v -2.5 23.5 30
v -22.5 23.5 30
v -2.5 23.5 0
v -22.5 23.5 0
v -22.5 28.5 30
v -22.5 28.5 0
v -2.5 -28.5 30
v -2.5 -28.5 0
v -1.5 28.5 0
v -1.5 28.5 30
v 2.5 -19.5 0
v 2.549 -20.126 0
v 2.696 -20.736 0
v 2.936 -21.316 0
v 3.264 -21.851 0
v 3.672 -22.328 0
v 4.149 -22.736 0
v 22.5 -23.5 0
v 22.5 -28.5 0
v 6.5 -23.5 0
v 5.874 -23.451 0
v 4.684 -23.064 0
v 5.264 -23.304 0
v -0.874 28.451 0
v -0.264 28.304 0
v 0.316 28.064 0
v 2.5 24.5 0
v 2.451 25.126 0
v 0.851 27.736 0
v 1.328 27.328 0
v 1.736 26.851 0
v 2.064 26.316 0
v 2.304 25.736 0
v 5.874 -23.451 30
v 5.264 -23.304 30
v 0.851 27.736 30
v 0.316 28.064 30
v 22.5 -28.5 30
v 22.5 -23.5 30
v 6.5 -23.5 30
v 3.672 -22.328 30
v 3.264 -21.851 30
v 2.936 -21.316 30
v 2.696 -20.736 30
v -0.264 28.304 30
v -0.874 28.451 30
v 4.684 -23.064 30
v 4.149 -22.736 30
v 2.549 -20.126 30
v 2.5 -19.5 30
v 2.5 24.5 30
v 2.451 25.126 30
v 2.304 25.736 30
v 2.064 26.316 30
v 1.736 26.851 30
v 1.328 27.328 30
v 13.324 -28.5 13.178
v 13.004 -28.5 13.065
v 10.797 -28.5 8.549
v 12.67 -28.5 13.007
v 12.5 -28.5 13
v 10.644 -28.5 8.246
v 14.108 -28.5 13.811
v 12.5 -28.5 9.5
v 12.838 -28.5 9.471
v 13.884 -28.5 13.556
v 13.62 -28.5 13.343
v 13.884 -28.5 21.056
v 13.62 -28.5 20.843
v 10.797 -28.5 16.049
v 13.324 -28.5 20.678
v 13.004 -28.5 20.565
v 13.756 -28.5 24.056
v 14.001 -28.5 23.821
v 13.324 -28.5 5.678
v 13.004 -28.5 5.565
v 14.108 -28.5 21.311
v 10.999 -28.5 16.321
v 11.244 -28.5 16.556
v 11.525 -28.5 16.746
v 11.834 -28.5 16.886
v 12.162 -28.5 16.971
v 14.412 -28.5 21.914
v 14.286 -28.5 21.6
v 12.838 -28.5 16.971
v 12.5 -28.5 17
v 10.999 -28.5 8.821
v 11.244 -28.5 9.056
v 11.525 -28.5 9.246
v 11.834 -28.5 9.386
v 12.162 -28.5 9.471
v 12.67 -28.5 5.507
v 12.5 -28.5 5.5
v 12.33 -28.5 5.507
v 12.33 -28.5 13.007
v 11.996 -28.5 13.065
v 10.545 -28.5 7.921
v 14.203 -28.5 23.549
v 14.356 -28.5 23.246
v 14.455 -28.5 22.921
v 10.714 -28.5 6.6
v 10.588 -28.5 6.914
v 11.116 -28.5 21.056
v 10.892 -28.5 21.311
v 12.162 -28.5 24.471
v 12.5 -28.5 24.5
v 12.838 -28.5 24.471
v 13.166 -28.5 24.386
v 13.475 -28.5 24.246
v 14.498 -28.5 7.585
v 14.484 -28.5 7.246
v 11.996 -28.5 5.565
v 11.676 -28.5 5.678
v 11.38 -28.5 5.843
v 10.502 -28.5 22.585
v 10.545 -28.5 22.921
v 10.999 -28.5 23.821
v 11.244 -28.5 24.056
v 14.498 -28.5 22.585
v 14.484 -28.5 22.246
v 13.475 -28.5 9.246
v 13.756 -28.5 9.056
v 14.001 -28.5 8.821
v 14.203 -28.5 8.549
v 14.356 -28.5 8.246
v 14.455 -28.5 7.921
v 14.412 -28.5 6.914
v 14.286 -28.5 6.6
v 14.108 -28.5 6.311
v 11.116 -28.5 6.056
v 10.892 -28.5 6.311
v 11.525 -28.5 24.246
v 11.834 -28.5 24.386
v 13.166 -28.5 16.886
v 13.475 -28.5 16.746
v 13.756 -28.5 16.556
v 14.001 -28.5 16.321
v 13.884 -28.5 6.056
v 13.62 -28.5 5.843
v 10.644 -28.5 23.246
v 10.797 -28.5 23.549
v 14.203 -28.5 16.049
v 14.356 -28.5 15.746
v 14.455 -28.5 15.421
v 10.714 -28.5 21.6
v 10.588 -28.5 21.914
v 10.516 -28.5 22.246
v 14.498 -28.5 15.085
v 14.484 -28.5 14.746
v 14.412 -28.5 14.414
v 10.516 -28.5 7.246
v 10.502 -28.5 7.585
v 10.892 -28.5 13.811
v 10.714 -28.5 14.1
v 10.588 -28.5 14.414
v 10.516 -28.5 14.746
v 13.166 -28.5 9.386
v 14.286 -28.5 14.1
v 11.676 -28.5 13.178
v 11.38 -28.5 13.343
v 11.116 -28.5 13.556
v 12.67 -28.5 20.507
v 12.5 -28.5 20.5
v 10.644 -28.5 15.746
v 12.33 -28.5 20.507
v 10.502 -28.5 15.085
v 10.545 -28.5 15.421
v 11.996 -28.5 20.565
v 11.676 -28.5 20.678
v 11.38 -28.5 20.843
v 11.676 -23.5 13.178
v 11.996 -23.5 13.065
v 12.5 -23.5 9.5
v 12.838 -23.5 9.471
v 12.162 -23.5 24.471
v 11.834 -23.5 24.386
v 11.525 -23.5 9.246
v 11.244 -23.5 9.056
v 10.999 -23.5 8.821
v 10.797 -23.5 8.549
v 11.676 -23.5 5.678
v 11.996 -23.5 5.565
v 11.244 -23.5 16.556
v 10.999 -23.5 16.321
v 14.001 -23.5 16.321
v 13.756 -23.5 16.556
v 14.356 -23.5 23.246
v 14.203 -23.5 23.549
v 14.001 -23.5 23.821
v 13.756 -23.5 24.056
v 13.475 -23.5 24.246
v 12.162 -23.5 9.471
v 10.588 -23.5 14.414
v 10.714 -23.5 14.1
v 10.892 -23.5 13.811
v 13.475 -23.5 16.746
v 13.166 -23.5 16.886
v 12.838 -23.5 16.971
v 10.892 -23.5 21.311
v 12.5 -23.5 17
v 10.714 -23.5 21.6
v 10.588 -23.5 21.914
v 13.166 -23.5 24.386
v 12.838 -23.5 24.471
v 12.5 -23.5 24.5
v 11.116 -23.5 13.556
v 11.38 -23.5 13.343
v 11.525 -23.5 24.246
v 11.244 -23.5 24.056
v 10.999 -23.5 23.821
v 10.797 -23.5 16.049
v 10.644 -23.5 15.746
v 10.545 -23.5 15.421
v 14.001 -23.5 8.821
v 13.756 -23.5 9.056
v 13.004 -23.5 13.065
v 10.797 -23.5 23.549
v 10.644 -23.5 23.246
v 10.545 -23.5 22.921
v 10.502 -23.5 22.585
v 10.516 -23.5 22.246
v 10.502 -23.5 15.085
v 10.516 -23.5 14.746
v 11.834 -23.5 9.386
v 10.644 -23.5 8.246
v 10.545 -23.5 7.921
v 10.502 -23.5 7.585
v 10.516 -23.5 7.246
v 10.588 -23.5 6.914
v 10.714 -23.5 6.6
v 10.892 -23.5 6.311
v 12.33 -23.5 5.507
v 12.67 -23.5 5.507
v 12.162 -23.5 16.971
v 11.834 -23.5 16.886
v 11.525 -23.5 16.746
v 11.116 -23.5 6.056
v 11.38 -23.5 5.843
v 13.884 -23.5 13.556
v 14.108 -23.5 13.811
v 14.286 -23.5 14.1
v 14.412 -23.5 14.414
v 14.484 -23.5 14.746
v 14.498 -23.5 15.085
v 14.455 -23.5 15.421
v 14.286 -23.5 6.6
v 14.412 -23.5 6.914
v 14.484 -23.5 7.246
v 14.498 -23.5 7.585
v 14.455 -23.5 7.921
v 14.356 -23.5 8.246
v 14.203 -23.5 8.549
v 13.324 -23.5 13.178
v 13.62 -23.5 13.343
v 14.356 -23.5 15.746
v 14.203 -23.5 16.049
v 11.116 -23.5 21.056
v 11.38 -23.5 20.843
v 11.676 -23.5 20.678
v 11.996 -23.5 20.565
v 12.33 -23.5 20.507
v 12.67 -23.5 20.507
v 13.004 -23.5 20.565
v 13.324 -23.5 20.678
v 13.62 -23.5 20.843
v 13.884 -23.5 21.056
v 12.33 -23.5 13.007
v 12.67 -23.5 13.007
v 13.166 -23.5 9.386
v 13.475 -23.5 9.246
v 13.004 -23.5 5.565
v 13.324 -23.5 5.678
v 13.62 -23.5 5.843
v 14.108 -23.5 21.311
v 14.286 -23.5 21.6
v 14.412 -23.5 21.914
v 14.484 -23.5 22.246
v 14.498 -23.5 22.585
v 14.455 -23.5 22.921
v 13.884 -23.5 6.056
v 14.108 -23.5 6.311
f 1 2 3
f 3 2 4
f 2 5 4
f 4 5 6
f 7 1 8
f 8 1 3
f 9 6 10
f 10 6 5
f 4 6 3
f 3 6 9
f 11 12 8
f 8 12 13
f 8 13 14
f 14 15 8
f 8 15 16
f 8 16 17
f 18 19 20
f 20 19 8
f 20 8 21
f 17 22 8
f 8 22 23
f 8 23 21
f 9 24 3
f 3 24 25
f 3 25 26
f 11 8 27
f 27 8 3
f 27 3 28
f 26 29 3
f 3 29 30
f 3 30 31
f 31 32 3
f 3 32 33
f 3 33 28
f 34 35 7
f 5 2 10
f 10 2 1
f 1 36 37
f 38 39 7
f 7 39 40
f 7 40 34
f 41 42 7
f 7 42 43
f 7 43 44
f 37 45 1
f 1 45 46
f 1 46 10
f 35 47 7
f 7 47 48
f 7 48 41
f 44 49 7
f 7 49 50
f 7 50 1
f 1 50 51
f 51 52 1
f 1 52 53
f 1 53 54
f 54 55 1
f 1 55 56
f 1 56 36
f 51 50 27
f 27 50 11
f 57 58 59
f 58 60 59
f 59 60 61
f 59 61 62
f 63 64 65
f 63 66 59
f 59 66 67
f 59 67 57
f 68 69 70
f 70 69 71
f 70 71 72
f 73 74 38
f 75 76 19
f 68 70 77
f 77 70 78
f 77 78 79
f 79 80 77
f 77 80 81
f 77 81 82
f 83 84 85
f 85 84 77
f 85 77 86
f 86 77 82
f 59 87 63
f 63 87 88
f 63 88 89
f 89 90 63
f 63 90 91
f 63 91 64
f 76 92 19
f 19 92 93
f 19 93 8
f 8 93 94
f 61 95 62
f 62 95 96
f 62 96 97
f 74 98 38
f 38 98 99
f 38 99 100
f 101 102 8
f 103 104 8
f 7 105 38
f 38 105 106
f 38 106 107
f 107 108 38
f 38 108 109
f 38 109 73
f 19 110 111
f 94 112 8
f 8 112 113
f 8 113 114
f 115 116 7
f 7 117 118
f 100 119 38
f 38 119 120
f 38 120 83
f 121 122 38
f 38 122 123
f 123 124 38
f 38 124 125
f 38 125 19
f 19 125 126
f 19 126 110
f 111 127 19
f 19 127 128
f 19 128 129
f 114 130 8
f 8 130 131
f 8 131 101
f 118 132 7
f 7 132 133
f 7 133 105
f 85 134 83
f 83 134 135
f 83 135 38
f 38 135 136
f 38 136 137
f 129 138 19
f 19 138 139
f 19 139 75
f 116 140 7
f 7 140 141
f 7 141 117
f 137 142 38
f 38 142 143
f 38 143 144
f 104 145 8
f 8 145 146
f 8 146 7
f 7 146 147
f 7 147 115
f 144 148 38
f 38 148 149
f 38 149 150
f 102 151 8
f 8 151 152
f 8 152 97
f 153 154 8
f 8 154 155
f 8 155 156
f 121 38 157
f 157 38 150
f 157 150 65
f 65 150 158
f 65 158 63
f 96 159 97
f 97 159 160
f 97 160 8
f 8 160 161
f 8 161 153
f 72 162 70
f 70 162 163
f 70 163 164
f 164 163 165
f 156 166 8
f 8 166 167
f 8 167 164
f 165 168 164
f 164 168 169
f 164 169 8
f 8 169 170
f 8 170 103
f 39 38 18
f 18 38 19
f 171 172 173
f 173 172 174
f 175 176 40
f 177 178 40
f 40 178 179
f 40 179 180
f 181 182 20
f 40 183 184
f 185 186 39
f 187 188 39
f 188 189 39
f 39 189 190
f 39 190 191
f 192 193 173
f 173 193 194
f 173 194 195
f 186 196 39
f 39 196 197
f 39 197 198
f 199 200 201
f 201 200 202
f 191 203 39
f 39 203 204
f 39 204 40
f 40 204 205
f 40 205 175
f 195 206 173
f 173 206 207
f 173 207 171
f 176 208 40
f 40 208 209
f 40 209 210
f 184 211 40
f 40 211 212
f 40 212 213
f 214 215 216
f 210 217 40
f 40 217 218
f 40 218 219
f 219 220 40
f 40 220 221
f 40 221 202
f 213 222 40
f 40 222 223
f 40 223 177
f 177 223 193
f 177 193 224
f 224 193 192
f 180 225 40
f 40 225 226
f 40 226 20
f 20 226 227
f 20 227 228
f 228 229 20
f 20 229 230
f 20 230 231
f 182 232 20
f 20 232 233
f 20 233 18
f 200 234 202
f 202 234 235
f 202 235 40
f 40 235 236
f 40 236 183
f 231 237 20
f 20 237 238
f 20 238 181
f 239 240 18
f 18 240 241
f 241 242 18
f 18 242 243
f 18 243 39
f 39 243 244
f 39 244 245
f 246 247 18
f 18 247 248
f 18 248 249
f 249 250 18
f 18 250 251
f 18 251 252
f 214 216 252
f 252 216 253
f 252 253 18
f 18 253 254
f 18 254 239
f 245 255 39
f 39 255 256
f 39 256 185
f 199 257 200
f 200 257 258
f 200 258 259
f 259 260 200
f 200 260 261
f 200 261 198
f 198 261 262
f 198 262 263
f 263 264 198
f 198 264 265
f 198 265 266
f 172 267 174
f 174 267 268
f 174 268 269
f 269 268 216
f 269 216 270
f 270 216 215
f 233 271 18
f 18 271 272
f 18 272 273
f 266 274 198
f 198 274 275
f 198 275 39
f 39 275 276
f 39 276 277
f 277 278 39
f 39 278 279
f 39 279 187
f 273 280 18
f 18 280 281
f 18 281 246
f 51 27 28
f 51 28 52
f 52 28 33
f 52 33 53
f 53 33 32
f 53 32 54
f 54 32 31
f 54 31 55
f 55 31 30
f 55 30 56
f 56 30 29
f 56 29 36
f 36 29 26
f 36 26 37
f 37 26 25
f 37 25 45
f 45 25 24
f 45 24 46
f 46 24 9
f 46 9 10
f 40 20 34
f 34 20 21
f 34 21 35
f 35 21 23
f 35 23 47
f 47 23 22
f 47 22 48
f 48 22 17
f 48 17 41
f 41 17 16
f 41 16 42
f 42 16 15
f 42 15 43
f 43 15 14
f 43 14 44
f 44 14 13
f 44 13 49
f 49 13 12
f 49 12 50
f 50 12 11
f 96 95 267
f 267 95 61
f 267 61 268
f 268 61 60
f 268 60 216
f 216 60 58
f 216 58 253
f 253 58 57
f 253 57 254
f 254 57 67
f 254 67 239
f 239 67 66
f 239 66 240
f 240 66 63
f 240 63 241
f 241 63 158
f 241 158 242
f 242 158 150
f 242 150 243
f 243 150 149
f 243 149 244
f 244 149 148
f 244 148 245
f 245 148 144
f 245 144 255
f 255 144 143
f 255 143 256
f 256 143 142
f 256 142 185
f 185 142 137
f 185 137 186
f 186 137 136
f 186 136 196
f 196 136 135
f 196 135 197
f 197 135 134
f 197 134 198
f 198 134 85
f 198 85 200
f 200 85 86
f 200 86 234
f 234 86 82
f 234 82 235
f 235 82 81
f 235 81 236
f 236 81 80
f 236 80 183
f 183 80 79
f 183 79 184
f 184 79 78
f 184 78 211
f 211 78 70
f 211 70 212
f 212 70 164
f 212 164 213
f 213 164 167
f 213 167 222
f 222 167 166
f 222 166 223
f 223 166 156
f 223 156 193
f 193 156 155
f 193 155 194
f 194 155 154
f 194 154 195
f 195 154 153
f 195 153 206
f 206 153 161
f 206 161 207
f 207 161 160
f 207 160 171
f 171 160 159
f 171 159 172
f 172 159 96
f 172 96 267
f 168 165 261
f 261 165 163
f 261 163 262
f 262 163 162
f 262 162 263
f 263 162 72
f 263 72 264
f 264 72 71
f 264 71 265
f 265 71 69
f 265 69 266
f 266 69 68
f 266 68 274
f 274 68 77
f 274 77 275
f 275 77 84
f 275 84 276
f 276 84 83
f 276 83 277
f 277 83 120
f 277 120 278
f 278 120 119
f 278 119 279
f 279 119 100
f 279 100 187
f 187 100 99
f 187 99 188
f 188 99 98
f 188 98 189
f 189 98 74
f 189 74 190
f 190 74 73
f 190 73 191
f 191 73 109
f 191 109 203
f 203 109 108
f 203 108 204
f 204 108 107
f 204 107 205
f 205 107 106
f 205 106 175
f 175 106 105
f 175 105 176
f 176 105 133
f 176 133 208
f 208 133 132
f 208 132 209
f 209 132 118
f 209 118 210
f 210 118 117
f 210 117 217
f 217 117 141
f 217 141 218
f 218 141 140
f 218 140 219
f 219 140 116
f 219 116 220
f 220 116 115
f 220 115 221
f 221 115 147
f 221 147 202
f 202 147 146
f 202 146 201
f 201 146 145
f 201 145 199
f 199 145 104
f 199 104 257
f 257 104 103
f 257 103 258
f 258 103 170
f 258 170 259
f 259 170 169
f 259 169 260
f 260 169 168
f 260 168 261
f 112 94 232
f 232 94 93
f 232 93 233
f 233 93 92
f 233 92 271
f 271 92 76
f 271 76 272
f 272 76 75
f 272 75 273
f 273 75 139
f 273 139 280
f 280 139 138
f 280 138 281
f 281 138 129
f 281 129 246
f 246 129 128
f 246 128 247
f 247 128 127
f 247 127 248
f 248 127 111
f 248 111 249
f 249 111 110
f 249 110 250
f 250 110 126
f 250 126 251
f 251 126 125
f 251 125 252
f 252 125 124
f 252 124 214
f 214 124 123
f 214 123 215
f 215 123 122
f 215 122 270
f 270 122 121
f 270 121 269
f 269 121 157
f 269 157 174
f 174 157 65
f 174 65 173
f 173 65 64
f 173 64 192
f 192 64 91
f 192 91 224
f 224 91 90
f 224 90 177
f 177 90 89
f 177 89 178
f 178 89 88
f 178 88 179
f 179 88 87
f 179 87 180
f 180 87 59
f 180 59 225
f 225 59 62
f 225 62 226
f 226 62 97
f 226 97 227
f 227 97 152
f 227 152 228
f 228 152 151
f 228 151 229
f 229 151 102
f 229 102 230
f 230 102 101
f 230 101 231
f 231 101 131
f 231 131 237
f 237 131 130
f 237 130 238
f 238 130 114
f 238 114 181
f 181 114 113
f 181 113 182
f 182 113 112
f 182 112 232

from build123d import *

# Parameters (mm, degrees)
SKETCH1_W           = 20
SKETCH1_H           = 5
SKETCH1_W_2         = 5
SKETCH1_H_2         = 57
BOSS_EXTRUDE1_DEPTH = 30
FILLET1_R           = 4
SKETCH2_R           = 2
CUT_EXTRUDE1_DEPTH  = 30


with BuildPart() as part:
    # Sketch1 → Boss-Extrude1 (new body)
    with BuildSketch(Plane.XY):
        with Locations((-12.5, 26)):
            Rectangle(SKETCH1_W, SKETCH1_H)
        Rectangle(SKETCH1_W_2, SKETCH1_H_2)
        with Locations((12.5, -26)):
            Rectangle(SKETCH1_W, SKETCH1_H)
    extrude(amount=BOSS_EXTRUDE1_DEPTH)

    # Fillet1
    fillet1_edges = [part.edges().sort_by_distance(p)[0] for p in [
        (2.5, 28.5, 15),
        (2.5, -23.5, 15),
    ]]
    fillet(fillet1_edges, radius=FILLET1_R)

    # Sketch2 → Cut-Extrude1 (cut)
    with BuildSketch(Plane(origin=(0, -23.5, 0), x_dir=(1, 0, 0), z_dir=(0, 1, 0))):
        with Locations(Location((12.5, -15, 0), (0, 0, 270))):
            Circle(SKETCH2_R)
        with Locations(Location((12.5, -22.5, 0), (0, 0, 270))):
            Circle(SKETCH2_R)
        with Locations(Location((12.5, -7.5, 0), (0, 0, 270))):
            Circle(SKETCH2_R)
    extrude(amount=-CUT_EXTRUDE1_DEPTH, mode=Mode.SUBTRACT)


solid = part.part
